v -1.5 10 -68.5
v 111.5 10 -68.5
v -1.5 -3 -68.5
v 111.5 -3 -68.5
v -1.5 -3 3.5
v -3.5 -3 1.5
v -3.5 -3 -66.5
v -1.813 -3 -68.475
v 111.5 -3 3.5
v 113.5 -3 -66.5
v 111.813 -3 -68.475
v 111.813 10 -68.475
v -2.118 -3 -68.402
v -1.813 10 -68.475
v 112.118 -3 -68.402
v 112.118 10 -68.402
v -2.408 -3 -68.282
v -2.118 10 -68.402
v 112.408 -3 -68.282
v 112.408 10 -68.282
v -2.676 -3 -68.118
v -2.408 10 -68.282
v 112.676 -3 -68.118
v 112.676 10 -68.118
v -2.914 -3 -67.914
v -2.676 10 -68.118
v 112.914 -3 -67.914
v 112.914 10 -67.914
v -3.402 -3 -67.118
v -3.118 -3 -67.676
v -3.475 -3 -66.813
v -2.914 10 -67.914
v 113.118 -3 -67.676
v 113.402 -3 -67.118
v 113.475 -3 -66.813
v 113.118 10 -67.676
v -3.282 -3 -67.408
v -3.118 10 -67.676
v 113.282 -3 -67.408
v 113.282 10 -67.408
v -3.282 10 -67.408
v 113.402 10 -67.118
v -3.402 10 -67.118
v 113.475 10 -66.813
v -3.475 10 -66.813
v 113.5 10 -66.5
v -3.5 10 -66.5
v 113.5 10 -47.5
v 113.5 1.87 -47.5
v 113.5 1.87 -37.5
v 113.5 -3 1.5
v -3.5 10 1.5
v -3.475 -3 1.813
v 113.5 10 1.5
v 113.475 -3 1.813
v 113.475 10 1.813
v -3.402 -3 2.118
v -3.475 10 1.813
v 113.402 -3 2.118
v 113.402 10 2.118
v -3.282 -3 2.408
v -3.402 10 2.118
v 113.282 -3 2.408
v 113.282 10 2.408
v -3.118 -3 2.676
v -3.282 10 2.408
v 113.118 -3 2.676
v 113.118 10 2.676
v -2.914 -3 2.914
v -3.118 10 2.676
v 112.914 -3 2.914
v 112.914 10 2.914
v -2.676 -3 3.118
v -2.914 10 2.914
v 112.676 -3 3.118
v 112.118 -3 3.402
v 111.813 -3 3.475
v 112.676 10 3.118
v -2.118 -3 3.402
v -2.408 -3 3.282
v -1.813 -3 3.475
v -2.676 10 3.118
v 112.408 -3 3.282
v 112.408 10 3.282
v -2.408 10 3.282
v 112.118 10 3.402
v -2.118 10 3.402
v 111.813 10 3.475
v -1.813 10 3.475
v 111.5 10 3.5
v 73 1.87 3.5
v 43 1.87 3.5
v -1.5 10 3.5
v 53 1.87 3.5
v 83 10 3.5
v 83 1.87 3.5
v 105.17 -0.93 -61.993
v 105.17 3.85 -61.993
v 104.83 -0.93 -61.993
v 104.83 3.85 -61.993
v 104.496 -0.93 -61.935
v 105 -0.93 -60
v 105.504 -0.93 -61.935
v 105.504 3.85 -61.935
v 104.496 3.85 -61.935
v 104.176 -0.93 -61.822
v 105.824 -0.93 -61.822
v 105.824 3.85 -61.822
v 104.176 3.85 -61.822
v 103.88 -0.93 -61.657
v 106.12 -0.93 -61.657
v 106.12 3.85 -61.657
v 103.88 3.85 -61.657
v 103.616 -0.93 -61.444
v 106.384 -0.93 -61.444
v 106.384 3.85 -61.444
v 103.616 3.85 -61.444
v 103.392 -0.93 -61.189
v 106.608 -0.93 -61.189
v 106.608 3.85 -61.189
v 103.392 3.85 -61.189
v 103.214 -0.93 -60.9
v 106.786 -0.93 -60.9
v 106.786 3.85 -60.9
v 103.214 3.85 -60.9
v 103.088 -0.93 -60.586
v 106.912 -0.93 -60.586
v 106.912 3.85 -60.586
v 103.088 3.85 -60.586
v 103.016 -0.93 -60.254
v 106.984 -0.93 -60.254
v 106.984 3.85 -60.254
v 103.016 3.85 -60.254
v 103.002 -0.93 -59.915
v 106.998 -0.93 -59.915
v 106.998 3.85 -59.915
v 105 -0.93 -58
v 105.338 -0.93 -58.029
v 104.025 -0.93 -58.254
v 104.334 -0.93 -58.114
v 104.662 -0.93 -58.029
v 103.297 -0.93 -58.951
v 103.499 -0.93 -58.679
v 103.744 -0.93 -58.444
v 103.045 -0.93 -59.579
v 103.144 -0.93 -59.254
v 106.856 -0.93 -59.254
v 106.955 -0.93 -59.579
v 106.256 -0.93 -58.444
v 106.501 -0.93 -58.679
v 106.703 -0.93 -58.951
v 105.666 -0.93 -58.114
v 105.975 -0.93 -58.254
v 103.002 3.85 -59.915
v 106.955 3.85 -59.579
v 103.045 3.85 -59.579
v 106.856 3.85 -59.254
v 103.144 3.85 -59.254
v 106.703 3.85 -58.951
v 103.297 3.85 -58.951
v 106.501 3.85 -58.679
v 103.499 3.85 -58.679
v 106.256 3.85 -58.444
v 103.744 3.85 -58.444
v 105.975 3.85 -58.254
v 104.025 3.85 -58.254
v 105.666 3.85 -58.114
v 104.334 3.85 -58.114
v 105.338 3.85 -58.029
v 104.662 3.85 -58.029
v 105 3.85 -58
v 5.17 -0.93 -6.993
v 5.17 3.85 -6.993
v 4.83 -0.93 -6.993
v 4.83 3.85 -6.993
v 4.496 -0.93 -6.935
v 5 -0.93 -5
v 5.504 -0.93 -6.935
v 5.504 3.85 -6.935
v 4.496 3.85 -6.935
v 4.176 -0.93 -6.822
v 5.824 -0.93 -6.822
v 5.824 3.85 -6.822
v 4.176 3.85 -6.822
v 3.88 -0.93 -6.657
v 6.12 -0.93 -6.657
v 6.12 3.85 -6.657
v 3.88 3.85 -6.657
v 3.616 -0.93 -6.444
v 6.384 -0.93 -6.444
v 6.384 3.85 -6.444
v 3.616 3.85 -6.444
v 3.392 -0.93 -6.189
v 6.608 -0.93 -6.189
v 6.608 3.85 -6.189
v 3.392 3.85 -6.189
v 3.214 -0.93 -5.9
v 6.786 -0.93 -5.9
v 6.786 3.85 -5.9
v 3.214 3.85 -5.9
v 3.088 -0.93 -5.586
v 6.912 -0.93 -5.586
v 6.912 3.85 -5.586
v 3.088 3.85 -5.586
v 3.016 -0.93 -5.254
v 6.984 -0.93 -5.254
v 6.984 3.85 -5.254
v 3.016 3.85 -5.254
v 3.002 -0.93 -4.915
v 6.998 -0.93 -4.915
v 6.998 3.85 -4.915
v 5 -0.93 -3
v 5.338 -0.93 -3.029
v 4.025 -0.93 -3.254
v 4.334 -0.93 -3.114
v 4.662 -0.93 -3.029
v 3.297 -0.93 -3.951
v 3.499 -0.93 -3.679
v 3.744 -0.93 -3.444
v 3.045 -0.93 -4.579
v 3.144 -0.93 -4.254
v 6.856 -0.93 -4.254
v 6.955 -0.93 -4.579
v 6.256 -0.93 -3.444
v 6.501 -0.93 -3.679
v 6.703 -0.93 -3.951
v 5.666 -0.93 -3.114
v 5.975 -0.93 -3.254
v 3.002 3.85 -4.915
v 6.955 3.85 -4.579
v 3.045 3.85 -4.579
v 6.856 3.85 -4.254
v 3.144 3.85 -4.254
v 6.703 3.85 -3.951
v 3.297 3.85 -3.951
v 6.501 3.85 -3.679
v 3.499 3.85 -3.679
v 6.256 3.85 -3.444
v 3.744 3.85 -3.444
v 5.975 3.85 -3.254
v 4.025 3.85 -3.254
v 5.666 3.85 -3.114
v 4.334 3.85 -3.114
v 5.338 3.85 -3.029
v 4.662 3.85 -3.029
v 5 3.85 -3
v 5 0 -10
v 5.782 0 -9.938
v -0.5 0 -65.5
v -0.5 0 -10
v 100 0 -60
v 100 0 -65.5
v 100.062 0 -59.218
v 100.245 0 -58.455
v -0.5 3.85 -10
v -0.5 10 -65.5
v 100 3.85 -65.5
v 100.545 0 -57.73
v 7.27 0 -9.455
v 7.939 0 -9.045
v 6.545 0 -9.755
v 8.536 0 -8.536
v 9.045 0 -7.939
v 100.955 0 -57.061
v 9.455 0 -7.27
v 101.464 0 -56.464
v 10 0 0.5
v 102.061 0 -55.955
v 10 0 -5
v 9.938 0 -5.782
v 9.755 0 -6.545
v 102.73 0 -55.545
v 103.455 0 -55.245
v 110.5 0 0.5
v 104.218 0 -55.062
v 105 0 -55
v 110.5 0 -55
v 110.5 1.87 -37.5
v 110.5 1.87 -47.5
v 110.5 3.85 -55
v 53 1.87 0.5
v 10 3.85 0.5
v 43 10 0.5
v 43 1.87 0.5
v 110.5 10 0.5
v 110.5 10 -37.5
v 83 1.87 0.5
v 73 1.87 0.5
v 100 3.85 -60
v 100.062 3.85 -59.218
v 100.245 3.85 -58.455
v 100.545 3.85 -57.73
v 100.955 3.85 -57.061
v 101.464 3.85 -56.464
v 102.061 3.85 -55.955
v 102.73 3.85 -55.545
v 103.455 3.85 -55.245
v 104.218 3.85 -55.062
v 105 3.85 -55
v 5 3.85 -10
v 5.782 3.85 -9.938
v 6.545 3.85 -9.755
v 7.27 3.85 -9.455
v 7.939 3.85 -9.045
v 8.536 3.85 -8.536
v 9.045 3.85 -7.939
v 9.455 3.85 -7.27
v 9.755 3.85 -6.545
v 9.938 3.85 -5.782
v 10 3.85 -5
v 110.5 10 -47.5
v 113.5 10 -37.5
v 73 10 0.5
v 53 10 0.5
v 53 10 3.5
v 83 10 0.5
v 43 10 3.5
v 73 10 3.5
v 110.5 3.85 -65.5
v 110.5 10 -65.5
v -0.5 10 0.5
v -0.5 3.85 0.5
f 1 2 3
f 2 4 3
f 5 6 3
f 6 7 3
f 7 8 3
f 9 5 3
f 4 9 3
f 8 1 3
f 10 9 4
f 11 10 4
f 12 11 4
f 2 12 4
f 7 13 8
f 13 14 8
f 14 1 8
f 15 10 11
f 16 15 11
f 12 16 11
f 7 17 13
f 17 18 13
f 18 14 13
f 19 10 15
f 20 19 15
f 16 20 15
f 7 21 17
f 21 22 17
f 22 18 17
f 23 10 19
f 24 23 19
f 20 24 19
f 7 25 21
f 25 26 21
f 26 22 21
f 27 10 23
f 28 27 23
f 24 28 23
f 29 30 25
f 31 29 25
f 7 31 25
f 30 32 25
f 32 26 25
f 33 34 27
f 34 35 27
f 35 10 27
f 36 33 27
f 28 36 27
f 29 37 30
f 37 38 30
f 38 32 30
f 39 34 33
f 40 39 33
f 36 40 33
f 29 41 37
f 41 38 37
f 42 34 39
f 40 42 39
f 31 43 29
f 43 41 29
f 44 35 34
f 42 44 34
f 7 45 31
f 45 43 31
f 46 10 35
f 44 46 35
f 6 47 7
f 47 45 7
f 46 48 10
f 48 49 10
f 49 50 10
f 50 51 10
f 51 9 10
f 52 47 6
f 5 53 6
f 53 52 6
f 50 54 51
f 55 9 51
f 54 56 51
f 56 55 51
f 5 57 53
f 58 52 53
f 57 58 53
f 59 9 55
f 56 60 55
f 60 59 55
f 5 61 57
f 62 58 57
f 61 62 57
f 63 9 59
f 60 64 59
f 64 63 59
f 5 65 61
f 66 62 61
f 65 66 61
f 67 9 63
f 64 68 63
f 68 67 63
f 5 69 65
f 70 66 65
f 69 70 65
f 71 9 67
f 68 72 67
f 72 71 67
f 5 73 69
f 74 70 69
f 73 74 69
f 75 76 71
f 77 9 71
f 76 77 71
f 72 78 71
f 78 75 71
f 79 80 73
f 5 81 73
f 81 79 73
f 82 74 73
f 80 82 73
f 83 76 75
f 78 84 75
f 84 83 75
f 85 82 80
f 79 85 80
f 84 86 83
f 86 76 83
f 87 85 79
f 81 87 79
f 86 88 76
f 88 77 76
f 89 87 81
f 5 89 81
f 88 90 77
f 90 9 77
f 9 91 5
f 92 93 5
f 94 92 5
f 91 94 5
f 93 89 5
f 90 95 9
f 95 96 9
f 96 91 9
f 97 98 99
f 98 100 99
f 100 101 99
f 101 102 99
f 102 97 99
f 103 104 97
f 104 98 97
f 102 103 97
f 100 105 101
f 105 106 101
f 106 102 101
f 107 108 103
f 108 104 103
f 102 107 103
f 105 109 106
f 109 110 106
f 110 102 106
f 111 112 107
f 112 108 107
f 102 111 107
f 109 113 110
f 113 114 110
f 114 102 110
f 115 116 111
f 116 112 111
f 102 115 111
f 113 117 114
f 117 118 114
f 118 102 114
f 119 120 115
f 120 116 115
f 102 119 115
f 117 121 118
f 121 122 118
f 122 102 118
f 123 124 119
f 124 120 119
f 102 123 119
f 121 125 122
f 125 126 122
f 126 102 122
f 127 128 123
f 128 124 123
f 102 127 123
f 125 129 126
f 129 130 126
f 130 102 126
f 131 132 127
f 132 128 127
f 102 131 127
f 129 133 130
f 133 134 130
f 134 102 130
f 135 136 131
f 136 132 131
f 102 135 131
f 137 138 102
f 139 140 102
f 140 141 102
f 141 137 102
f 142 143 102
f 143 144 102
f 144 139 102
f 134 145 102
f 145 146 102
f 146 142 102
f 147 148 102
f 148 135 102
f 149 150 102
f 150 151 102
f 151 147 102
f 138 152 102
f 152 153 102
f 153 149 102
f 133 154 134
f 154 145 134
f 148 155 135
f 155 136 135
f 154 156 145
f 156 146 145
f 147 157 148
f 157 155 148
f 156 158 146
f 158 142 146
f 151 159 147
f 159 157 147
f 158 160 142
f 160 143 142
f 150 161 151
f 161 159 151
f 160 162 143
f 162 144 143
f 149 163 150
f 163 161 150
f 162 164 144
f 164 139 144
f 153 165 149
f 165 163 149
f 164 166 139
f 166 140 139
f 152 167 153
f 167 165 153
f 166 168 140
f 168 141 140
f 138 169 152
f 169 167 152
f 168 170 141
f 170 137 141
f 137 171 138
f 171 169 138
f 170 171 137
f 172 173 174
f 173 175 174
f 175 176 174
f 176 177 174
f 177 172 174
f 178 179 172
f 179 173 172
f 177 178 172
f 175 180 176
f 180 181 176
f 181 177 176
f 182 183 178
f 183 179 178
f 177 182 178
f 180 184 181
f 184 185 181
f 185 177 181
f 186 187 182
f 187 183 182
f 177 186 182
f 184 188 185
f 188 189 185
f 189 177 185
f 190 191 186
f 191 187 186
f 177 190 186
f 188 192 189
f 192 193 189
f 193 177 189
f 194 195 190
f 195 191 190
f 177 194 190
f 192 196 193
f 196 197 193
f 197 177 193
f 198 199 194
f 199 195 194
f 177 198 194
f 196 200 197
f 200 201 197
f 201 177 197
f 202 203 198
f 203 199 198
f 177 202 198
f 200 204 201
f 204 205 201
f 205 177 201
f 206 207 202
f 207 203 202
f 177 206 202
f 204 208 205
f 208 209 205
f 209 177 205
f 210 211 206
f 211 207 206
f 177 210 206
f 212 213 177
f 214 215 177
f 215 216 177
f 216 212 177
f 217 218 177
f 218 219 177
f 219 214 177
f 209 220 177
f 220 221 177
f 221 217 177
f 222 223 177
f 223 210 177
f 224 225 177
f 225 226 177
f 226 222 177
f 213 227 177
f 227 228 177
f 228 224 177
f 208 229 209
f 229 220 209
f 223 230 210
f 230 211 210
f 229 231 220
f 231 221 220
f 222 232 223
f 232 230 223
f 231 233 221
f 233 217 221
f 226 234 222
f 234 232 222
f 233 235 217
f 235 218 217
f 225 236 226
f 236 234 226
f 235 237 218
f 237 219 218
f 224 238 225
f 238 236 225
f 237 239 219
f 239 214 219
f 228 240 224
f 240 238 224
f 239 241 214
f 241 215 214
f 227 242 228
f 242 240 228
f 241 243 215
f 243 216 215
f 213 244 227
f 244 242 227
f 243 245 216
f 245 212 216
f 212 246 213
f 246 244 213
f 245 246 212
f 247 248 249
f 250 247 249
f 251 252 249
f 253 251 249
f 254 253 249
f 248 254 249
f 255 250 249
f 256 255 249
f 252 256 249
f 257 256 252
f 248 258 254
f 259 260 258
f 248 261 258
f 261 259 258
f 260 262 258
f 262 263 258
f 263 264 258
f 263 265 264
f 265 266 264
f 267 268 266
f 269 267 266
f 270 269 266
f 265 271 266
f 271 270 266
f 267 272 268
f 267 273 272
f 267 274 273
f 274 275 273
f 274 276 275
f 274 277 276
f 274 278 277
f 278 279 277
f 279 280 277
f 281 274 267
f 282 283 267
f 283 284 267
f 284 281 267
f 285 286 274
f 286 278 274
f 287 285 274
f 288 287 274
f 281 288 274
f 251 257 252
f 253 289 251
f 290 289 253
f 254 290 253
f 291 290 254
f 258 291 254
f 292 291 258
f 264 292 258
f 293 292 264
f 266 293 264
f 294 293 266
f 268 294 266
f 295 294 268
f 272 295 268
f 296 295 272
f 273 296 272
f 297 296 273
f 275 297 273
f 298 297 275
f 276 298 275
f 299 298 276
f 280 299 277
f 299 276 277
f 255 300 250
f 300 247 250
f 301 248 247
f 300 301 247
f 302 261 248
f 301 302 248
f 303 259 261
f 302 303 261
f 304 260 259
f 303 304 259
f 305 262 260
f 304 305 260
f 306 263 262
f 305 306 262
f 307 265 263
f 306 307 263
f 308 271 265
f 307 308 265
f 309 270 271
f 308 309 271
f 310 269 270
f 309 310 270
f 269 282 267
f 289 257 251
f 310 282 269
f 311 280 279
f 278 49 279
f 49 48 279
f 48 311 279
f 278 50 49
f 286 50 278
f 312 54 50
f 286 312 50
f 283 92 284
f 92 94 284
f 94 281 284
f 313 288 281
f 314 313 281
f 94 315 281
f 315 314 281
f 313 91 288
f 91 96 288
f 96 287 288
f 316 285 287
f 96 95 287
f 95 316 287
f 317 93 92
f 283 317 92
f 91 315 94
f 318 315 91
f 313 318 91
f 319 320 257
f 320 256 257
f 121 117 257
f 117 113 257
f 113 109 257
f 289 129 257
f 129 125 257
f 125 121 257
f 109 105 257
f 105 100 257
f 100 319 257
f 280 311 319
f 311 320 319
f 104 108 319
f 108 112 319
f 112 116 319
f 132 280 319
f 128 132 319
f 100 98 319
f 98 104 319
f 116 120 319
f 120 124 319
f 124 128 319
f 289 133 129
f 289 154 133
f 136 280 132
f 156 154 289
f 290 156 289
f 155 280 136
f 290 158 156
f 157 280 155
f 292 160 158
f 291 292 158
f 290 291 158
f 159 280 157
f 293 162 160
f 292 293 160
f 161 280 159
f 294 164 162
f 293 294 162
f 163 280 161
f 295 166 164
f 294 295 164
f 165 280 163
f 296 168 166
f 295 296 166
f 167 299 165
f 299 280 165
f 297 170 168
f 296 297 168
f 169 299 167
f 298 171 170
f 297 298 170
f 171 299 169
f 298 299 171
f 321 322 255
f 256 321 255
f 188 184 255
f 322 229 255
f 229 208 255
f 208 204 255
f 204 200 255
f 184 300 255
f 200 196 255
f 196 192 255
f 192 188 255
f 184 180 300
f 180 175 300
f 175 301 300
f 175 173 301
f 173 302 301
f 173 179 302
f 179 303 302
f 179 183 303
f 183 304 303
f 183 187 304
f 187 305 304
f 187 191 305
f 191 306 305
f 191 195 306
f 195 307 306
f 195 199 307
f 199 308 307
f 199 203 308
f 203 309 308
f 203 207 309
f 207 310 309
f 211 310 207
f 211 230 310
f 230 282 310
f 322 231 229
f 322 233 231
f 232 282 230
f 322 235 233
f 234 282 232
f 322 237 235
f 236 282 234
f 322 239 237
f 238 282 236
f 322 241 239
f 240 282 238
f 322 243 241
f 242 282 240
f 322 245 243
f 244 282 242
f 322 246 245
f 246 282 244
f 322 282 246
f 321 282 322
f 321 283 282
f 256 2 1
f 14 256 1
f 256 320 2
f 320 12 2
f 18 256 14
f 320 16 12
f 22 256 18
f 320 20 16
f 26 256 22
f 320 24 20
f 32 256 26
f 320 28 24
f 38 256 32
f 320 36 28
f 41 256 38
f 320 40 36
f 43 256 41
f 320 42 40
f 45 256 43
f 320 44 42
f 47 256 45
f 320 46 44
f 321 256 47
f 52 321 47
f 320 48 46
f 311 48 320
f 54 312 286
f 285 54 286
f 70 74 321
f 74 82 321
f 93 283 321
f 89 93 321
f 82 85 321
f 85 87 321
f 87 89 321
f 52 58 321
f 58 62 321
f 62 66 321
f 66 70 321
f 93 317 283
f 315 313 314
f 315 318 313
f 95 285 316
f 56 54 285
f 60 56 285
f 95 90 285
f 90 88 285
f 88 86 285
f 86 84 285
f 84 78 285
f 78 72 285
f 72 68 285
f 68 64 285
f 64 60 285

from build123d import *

# Parameters (mm, degrees)
SKETCH1_W           = 117
SKETCH1_H           = 72
BOSS_EXTRUDE1_DEPTH = 3
SKETCH1_5_W         = 117
SKETCH1_5_H         = 72
SKETCH1_5_W_2       = 111
SKETCH1_5_H_2       = 66
BOSS_EXTRUDE2_DEPTH = 10
BOSS_EXTRUDE3_DEPTH = 3.85
SKETCH3_R           = 2
CUT_EXTRUDE1_DEPTH  = 4.78
FILLET1_R           = 2
SKETCH4_W           = 10
SKETCH4_H           = 8.13
CUT_EXTRUDE2_DEPTH  = 134.372598385
SKETCH5_W           = 10
SKETCH5_H           = 8.13
CUT_EXTRUDE3_DEPTH  = 134.203791237


with BuildPart() as part:
    # Sketch1 → Boss-Extrude1 (new body)
    with BuildSketch(Plane(origin=(0, 0, 0), x_dir=(1, 0, 0), z_dir=(0, 1, 0))):
        with Locations((55, 32.5)):
            Rectangle(SKETCH1_W, SKETCH1_H)
    extrude(amount=-BOSS_EXTRUDE1_DEPTH)

    # Sketch1<5> → Boss-Extrude2 (add)
    with BuildSketch(Plane(origin=(0, 0, 0), x_dir=(1, 0, 0), z_dir=(0, 1, 0))):
        with Locations((55, 32.5)):
            Rectangle(SKETCH1_5_W, SKETCH1_5_H)
        with Locations((55, 32.5)):
            Rectangle(SKETCH1_5_W_2, SKETCH1_5_H_2, mode=Mode.SUBTRACT)
    extrude(amount=BOSS_EXTRUDE2_DEPTH)

    # Sketch2 → Boss-Extrude3 (add)
    with BuildSketch(Plane(origin=(0, 0, 0), x_dir=(1, 0, 0), z_dir=(0, 1, 0))):
        with BuildLine():
            Line((110.5, 65.5), (100, 65.5))
            Line((100, 65.5), (100, 60))
            ThreePointArc((100, 60), (101.464466094, 56.464466094), (105, 55))
            Line((105, 55), (110.5, 55))
            Line((110.5, 55), (110.5, 65.5))
        make_face()
        with BuildLine():
            Line((-0.5, -0.5), (10, -0.5))
            Line((10, -0.5), (10, 5))
            ThreePointArc((10, 5), (8.535533906, 8.535533906), (5, 10))
            Line((5, 10), (-0.5, 10))
            Line((-0.5, 10), (-0.5, -0.5))
        make_face()
    extrude(amount=BOSS_EXTRUDE3_DEPTH)

    # Sketch3 → Cut-Extrude1 (cut)
    with BuildSketch(Plane(origin=(0, 3.85, 0), x_dir=(1, 0, 0), z_dir=(0, 1, 0))):
        with Locations((105, 60)):
            Circle(SKETCH3_R)
        with Locations((5, 5)):
            Circle(SKETCH3_R)
    extrude(amount=-CUT_EXTRUDE1_DEPTH, mode=Mode.SUBTRACT)

    # Fillet1
    fillet1_edges = [part.edges().sort_by_distance(p)[0] for p in [
        (113.5, 3.5, 3.5),
        (-3.5, 3.5, 3.5),
        (-3.5, 3.5, -68.5),
        (113.5, 3.5, -68.5),
    ]]
    fillet(fillet1_edges, radius=FILLET1_R)

    # Sketch4 → Cut-Extrude2 (cut, through all)
    with BuildSketch(Plane.ZY.offset(-110.5)):
        with Locations((-42.5, 5.935)):
            Rectangle(SKETCH4_W, SKETCH4_H)
    extrude(amount=-CUT_EXTRUDE2_DEPTH, mode=Mode.SUBTRACT)

    # Sketch5 → Cut-Extrude3 (cut, through all)
    with BuildSketch(Plane(origin=(0, 0, 0.5), x_dir=(-1, 0, 0), z_dir=(0, 0, -1))):
        with Locations((-78, 5.935)):
            Rectangle(SKETCH5_W, SKETCH5_H)
        with Locations((-48, 5.935)):
            Rectangle(SKETCH5_W, SKETCH5_H)
    extrude(amount=-CUT_EXTRUDE3_DEPTH, mode=Mode.SUBTRACT)


solid = part.part
